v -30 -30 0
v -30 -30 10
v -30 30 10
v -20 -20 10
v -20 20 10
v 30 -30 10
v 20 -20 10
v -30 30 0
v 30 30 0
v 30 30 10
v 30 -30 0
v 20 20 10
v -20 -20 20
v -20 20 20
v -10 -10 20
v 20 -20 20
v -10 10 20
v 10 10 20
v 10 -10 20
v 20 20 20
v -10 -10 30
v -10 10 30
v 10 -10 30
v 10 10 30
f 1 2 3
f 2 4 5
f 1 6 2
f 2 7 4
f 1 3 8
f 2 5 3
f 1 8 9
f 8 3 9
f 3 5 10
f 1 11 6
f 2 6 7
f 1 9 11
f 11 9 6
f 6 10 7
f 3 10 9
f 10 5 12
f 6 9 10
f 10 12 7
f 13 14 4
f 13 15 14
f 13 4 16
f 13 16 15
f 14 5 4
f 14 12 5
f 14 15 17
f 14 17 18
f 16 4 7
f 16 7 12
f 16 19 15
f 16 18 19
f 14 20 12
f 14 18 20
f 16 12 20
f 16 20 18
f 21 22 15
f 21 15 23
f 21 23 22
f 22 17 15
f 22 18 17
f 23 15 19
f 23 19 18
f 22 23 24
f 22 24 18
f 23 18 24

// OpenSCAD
translate([0, 0, 5])
    cube([60, 60, 10], center = true);

translate([0, 0, 15])
    cube([40, 40, 10], center = true);

translate([0, 0, 25])
    cube([20, 20, 10], center = true);
